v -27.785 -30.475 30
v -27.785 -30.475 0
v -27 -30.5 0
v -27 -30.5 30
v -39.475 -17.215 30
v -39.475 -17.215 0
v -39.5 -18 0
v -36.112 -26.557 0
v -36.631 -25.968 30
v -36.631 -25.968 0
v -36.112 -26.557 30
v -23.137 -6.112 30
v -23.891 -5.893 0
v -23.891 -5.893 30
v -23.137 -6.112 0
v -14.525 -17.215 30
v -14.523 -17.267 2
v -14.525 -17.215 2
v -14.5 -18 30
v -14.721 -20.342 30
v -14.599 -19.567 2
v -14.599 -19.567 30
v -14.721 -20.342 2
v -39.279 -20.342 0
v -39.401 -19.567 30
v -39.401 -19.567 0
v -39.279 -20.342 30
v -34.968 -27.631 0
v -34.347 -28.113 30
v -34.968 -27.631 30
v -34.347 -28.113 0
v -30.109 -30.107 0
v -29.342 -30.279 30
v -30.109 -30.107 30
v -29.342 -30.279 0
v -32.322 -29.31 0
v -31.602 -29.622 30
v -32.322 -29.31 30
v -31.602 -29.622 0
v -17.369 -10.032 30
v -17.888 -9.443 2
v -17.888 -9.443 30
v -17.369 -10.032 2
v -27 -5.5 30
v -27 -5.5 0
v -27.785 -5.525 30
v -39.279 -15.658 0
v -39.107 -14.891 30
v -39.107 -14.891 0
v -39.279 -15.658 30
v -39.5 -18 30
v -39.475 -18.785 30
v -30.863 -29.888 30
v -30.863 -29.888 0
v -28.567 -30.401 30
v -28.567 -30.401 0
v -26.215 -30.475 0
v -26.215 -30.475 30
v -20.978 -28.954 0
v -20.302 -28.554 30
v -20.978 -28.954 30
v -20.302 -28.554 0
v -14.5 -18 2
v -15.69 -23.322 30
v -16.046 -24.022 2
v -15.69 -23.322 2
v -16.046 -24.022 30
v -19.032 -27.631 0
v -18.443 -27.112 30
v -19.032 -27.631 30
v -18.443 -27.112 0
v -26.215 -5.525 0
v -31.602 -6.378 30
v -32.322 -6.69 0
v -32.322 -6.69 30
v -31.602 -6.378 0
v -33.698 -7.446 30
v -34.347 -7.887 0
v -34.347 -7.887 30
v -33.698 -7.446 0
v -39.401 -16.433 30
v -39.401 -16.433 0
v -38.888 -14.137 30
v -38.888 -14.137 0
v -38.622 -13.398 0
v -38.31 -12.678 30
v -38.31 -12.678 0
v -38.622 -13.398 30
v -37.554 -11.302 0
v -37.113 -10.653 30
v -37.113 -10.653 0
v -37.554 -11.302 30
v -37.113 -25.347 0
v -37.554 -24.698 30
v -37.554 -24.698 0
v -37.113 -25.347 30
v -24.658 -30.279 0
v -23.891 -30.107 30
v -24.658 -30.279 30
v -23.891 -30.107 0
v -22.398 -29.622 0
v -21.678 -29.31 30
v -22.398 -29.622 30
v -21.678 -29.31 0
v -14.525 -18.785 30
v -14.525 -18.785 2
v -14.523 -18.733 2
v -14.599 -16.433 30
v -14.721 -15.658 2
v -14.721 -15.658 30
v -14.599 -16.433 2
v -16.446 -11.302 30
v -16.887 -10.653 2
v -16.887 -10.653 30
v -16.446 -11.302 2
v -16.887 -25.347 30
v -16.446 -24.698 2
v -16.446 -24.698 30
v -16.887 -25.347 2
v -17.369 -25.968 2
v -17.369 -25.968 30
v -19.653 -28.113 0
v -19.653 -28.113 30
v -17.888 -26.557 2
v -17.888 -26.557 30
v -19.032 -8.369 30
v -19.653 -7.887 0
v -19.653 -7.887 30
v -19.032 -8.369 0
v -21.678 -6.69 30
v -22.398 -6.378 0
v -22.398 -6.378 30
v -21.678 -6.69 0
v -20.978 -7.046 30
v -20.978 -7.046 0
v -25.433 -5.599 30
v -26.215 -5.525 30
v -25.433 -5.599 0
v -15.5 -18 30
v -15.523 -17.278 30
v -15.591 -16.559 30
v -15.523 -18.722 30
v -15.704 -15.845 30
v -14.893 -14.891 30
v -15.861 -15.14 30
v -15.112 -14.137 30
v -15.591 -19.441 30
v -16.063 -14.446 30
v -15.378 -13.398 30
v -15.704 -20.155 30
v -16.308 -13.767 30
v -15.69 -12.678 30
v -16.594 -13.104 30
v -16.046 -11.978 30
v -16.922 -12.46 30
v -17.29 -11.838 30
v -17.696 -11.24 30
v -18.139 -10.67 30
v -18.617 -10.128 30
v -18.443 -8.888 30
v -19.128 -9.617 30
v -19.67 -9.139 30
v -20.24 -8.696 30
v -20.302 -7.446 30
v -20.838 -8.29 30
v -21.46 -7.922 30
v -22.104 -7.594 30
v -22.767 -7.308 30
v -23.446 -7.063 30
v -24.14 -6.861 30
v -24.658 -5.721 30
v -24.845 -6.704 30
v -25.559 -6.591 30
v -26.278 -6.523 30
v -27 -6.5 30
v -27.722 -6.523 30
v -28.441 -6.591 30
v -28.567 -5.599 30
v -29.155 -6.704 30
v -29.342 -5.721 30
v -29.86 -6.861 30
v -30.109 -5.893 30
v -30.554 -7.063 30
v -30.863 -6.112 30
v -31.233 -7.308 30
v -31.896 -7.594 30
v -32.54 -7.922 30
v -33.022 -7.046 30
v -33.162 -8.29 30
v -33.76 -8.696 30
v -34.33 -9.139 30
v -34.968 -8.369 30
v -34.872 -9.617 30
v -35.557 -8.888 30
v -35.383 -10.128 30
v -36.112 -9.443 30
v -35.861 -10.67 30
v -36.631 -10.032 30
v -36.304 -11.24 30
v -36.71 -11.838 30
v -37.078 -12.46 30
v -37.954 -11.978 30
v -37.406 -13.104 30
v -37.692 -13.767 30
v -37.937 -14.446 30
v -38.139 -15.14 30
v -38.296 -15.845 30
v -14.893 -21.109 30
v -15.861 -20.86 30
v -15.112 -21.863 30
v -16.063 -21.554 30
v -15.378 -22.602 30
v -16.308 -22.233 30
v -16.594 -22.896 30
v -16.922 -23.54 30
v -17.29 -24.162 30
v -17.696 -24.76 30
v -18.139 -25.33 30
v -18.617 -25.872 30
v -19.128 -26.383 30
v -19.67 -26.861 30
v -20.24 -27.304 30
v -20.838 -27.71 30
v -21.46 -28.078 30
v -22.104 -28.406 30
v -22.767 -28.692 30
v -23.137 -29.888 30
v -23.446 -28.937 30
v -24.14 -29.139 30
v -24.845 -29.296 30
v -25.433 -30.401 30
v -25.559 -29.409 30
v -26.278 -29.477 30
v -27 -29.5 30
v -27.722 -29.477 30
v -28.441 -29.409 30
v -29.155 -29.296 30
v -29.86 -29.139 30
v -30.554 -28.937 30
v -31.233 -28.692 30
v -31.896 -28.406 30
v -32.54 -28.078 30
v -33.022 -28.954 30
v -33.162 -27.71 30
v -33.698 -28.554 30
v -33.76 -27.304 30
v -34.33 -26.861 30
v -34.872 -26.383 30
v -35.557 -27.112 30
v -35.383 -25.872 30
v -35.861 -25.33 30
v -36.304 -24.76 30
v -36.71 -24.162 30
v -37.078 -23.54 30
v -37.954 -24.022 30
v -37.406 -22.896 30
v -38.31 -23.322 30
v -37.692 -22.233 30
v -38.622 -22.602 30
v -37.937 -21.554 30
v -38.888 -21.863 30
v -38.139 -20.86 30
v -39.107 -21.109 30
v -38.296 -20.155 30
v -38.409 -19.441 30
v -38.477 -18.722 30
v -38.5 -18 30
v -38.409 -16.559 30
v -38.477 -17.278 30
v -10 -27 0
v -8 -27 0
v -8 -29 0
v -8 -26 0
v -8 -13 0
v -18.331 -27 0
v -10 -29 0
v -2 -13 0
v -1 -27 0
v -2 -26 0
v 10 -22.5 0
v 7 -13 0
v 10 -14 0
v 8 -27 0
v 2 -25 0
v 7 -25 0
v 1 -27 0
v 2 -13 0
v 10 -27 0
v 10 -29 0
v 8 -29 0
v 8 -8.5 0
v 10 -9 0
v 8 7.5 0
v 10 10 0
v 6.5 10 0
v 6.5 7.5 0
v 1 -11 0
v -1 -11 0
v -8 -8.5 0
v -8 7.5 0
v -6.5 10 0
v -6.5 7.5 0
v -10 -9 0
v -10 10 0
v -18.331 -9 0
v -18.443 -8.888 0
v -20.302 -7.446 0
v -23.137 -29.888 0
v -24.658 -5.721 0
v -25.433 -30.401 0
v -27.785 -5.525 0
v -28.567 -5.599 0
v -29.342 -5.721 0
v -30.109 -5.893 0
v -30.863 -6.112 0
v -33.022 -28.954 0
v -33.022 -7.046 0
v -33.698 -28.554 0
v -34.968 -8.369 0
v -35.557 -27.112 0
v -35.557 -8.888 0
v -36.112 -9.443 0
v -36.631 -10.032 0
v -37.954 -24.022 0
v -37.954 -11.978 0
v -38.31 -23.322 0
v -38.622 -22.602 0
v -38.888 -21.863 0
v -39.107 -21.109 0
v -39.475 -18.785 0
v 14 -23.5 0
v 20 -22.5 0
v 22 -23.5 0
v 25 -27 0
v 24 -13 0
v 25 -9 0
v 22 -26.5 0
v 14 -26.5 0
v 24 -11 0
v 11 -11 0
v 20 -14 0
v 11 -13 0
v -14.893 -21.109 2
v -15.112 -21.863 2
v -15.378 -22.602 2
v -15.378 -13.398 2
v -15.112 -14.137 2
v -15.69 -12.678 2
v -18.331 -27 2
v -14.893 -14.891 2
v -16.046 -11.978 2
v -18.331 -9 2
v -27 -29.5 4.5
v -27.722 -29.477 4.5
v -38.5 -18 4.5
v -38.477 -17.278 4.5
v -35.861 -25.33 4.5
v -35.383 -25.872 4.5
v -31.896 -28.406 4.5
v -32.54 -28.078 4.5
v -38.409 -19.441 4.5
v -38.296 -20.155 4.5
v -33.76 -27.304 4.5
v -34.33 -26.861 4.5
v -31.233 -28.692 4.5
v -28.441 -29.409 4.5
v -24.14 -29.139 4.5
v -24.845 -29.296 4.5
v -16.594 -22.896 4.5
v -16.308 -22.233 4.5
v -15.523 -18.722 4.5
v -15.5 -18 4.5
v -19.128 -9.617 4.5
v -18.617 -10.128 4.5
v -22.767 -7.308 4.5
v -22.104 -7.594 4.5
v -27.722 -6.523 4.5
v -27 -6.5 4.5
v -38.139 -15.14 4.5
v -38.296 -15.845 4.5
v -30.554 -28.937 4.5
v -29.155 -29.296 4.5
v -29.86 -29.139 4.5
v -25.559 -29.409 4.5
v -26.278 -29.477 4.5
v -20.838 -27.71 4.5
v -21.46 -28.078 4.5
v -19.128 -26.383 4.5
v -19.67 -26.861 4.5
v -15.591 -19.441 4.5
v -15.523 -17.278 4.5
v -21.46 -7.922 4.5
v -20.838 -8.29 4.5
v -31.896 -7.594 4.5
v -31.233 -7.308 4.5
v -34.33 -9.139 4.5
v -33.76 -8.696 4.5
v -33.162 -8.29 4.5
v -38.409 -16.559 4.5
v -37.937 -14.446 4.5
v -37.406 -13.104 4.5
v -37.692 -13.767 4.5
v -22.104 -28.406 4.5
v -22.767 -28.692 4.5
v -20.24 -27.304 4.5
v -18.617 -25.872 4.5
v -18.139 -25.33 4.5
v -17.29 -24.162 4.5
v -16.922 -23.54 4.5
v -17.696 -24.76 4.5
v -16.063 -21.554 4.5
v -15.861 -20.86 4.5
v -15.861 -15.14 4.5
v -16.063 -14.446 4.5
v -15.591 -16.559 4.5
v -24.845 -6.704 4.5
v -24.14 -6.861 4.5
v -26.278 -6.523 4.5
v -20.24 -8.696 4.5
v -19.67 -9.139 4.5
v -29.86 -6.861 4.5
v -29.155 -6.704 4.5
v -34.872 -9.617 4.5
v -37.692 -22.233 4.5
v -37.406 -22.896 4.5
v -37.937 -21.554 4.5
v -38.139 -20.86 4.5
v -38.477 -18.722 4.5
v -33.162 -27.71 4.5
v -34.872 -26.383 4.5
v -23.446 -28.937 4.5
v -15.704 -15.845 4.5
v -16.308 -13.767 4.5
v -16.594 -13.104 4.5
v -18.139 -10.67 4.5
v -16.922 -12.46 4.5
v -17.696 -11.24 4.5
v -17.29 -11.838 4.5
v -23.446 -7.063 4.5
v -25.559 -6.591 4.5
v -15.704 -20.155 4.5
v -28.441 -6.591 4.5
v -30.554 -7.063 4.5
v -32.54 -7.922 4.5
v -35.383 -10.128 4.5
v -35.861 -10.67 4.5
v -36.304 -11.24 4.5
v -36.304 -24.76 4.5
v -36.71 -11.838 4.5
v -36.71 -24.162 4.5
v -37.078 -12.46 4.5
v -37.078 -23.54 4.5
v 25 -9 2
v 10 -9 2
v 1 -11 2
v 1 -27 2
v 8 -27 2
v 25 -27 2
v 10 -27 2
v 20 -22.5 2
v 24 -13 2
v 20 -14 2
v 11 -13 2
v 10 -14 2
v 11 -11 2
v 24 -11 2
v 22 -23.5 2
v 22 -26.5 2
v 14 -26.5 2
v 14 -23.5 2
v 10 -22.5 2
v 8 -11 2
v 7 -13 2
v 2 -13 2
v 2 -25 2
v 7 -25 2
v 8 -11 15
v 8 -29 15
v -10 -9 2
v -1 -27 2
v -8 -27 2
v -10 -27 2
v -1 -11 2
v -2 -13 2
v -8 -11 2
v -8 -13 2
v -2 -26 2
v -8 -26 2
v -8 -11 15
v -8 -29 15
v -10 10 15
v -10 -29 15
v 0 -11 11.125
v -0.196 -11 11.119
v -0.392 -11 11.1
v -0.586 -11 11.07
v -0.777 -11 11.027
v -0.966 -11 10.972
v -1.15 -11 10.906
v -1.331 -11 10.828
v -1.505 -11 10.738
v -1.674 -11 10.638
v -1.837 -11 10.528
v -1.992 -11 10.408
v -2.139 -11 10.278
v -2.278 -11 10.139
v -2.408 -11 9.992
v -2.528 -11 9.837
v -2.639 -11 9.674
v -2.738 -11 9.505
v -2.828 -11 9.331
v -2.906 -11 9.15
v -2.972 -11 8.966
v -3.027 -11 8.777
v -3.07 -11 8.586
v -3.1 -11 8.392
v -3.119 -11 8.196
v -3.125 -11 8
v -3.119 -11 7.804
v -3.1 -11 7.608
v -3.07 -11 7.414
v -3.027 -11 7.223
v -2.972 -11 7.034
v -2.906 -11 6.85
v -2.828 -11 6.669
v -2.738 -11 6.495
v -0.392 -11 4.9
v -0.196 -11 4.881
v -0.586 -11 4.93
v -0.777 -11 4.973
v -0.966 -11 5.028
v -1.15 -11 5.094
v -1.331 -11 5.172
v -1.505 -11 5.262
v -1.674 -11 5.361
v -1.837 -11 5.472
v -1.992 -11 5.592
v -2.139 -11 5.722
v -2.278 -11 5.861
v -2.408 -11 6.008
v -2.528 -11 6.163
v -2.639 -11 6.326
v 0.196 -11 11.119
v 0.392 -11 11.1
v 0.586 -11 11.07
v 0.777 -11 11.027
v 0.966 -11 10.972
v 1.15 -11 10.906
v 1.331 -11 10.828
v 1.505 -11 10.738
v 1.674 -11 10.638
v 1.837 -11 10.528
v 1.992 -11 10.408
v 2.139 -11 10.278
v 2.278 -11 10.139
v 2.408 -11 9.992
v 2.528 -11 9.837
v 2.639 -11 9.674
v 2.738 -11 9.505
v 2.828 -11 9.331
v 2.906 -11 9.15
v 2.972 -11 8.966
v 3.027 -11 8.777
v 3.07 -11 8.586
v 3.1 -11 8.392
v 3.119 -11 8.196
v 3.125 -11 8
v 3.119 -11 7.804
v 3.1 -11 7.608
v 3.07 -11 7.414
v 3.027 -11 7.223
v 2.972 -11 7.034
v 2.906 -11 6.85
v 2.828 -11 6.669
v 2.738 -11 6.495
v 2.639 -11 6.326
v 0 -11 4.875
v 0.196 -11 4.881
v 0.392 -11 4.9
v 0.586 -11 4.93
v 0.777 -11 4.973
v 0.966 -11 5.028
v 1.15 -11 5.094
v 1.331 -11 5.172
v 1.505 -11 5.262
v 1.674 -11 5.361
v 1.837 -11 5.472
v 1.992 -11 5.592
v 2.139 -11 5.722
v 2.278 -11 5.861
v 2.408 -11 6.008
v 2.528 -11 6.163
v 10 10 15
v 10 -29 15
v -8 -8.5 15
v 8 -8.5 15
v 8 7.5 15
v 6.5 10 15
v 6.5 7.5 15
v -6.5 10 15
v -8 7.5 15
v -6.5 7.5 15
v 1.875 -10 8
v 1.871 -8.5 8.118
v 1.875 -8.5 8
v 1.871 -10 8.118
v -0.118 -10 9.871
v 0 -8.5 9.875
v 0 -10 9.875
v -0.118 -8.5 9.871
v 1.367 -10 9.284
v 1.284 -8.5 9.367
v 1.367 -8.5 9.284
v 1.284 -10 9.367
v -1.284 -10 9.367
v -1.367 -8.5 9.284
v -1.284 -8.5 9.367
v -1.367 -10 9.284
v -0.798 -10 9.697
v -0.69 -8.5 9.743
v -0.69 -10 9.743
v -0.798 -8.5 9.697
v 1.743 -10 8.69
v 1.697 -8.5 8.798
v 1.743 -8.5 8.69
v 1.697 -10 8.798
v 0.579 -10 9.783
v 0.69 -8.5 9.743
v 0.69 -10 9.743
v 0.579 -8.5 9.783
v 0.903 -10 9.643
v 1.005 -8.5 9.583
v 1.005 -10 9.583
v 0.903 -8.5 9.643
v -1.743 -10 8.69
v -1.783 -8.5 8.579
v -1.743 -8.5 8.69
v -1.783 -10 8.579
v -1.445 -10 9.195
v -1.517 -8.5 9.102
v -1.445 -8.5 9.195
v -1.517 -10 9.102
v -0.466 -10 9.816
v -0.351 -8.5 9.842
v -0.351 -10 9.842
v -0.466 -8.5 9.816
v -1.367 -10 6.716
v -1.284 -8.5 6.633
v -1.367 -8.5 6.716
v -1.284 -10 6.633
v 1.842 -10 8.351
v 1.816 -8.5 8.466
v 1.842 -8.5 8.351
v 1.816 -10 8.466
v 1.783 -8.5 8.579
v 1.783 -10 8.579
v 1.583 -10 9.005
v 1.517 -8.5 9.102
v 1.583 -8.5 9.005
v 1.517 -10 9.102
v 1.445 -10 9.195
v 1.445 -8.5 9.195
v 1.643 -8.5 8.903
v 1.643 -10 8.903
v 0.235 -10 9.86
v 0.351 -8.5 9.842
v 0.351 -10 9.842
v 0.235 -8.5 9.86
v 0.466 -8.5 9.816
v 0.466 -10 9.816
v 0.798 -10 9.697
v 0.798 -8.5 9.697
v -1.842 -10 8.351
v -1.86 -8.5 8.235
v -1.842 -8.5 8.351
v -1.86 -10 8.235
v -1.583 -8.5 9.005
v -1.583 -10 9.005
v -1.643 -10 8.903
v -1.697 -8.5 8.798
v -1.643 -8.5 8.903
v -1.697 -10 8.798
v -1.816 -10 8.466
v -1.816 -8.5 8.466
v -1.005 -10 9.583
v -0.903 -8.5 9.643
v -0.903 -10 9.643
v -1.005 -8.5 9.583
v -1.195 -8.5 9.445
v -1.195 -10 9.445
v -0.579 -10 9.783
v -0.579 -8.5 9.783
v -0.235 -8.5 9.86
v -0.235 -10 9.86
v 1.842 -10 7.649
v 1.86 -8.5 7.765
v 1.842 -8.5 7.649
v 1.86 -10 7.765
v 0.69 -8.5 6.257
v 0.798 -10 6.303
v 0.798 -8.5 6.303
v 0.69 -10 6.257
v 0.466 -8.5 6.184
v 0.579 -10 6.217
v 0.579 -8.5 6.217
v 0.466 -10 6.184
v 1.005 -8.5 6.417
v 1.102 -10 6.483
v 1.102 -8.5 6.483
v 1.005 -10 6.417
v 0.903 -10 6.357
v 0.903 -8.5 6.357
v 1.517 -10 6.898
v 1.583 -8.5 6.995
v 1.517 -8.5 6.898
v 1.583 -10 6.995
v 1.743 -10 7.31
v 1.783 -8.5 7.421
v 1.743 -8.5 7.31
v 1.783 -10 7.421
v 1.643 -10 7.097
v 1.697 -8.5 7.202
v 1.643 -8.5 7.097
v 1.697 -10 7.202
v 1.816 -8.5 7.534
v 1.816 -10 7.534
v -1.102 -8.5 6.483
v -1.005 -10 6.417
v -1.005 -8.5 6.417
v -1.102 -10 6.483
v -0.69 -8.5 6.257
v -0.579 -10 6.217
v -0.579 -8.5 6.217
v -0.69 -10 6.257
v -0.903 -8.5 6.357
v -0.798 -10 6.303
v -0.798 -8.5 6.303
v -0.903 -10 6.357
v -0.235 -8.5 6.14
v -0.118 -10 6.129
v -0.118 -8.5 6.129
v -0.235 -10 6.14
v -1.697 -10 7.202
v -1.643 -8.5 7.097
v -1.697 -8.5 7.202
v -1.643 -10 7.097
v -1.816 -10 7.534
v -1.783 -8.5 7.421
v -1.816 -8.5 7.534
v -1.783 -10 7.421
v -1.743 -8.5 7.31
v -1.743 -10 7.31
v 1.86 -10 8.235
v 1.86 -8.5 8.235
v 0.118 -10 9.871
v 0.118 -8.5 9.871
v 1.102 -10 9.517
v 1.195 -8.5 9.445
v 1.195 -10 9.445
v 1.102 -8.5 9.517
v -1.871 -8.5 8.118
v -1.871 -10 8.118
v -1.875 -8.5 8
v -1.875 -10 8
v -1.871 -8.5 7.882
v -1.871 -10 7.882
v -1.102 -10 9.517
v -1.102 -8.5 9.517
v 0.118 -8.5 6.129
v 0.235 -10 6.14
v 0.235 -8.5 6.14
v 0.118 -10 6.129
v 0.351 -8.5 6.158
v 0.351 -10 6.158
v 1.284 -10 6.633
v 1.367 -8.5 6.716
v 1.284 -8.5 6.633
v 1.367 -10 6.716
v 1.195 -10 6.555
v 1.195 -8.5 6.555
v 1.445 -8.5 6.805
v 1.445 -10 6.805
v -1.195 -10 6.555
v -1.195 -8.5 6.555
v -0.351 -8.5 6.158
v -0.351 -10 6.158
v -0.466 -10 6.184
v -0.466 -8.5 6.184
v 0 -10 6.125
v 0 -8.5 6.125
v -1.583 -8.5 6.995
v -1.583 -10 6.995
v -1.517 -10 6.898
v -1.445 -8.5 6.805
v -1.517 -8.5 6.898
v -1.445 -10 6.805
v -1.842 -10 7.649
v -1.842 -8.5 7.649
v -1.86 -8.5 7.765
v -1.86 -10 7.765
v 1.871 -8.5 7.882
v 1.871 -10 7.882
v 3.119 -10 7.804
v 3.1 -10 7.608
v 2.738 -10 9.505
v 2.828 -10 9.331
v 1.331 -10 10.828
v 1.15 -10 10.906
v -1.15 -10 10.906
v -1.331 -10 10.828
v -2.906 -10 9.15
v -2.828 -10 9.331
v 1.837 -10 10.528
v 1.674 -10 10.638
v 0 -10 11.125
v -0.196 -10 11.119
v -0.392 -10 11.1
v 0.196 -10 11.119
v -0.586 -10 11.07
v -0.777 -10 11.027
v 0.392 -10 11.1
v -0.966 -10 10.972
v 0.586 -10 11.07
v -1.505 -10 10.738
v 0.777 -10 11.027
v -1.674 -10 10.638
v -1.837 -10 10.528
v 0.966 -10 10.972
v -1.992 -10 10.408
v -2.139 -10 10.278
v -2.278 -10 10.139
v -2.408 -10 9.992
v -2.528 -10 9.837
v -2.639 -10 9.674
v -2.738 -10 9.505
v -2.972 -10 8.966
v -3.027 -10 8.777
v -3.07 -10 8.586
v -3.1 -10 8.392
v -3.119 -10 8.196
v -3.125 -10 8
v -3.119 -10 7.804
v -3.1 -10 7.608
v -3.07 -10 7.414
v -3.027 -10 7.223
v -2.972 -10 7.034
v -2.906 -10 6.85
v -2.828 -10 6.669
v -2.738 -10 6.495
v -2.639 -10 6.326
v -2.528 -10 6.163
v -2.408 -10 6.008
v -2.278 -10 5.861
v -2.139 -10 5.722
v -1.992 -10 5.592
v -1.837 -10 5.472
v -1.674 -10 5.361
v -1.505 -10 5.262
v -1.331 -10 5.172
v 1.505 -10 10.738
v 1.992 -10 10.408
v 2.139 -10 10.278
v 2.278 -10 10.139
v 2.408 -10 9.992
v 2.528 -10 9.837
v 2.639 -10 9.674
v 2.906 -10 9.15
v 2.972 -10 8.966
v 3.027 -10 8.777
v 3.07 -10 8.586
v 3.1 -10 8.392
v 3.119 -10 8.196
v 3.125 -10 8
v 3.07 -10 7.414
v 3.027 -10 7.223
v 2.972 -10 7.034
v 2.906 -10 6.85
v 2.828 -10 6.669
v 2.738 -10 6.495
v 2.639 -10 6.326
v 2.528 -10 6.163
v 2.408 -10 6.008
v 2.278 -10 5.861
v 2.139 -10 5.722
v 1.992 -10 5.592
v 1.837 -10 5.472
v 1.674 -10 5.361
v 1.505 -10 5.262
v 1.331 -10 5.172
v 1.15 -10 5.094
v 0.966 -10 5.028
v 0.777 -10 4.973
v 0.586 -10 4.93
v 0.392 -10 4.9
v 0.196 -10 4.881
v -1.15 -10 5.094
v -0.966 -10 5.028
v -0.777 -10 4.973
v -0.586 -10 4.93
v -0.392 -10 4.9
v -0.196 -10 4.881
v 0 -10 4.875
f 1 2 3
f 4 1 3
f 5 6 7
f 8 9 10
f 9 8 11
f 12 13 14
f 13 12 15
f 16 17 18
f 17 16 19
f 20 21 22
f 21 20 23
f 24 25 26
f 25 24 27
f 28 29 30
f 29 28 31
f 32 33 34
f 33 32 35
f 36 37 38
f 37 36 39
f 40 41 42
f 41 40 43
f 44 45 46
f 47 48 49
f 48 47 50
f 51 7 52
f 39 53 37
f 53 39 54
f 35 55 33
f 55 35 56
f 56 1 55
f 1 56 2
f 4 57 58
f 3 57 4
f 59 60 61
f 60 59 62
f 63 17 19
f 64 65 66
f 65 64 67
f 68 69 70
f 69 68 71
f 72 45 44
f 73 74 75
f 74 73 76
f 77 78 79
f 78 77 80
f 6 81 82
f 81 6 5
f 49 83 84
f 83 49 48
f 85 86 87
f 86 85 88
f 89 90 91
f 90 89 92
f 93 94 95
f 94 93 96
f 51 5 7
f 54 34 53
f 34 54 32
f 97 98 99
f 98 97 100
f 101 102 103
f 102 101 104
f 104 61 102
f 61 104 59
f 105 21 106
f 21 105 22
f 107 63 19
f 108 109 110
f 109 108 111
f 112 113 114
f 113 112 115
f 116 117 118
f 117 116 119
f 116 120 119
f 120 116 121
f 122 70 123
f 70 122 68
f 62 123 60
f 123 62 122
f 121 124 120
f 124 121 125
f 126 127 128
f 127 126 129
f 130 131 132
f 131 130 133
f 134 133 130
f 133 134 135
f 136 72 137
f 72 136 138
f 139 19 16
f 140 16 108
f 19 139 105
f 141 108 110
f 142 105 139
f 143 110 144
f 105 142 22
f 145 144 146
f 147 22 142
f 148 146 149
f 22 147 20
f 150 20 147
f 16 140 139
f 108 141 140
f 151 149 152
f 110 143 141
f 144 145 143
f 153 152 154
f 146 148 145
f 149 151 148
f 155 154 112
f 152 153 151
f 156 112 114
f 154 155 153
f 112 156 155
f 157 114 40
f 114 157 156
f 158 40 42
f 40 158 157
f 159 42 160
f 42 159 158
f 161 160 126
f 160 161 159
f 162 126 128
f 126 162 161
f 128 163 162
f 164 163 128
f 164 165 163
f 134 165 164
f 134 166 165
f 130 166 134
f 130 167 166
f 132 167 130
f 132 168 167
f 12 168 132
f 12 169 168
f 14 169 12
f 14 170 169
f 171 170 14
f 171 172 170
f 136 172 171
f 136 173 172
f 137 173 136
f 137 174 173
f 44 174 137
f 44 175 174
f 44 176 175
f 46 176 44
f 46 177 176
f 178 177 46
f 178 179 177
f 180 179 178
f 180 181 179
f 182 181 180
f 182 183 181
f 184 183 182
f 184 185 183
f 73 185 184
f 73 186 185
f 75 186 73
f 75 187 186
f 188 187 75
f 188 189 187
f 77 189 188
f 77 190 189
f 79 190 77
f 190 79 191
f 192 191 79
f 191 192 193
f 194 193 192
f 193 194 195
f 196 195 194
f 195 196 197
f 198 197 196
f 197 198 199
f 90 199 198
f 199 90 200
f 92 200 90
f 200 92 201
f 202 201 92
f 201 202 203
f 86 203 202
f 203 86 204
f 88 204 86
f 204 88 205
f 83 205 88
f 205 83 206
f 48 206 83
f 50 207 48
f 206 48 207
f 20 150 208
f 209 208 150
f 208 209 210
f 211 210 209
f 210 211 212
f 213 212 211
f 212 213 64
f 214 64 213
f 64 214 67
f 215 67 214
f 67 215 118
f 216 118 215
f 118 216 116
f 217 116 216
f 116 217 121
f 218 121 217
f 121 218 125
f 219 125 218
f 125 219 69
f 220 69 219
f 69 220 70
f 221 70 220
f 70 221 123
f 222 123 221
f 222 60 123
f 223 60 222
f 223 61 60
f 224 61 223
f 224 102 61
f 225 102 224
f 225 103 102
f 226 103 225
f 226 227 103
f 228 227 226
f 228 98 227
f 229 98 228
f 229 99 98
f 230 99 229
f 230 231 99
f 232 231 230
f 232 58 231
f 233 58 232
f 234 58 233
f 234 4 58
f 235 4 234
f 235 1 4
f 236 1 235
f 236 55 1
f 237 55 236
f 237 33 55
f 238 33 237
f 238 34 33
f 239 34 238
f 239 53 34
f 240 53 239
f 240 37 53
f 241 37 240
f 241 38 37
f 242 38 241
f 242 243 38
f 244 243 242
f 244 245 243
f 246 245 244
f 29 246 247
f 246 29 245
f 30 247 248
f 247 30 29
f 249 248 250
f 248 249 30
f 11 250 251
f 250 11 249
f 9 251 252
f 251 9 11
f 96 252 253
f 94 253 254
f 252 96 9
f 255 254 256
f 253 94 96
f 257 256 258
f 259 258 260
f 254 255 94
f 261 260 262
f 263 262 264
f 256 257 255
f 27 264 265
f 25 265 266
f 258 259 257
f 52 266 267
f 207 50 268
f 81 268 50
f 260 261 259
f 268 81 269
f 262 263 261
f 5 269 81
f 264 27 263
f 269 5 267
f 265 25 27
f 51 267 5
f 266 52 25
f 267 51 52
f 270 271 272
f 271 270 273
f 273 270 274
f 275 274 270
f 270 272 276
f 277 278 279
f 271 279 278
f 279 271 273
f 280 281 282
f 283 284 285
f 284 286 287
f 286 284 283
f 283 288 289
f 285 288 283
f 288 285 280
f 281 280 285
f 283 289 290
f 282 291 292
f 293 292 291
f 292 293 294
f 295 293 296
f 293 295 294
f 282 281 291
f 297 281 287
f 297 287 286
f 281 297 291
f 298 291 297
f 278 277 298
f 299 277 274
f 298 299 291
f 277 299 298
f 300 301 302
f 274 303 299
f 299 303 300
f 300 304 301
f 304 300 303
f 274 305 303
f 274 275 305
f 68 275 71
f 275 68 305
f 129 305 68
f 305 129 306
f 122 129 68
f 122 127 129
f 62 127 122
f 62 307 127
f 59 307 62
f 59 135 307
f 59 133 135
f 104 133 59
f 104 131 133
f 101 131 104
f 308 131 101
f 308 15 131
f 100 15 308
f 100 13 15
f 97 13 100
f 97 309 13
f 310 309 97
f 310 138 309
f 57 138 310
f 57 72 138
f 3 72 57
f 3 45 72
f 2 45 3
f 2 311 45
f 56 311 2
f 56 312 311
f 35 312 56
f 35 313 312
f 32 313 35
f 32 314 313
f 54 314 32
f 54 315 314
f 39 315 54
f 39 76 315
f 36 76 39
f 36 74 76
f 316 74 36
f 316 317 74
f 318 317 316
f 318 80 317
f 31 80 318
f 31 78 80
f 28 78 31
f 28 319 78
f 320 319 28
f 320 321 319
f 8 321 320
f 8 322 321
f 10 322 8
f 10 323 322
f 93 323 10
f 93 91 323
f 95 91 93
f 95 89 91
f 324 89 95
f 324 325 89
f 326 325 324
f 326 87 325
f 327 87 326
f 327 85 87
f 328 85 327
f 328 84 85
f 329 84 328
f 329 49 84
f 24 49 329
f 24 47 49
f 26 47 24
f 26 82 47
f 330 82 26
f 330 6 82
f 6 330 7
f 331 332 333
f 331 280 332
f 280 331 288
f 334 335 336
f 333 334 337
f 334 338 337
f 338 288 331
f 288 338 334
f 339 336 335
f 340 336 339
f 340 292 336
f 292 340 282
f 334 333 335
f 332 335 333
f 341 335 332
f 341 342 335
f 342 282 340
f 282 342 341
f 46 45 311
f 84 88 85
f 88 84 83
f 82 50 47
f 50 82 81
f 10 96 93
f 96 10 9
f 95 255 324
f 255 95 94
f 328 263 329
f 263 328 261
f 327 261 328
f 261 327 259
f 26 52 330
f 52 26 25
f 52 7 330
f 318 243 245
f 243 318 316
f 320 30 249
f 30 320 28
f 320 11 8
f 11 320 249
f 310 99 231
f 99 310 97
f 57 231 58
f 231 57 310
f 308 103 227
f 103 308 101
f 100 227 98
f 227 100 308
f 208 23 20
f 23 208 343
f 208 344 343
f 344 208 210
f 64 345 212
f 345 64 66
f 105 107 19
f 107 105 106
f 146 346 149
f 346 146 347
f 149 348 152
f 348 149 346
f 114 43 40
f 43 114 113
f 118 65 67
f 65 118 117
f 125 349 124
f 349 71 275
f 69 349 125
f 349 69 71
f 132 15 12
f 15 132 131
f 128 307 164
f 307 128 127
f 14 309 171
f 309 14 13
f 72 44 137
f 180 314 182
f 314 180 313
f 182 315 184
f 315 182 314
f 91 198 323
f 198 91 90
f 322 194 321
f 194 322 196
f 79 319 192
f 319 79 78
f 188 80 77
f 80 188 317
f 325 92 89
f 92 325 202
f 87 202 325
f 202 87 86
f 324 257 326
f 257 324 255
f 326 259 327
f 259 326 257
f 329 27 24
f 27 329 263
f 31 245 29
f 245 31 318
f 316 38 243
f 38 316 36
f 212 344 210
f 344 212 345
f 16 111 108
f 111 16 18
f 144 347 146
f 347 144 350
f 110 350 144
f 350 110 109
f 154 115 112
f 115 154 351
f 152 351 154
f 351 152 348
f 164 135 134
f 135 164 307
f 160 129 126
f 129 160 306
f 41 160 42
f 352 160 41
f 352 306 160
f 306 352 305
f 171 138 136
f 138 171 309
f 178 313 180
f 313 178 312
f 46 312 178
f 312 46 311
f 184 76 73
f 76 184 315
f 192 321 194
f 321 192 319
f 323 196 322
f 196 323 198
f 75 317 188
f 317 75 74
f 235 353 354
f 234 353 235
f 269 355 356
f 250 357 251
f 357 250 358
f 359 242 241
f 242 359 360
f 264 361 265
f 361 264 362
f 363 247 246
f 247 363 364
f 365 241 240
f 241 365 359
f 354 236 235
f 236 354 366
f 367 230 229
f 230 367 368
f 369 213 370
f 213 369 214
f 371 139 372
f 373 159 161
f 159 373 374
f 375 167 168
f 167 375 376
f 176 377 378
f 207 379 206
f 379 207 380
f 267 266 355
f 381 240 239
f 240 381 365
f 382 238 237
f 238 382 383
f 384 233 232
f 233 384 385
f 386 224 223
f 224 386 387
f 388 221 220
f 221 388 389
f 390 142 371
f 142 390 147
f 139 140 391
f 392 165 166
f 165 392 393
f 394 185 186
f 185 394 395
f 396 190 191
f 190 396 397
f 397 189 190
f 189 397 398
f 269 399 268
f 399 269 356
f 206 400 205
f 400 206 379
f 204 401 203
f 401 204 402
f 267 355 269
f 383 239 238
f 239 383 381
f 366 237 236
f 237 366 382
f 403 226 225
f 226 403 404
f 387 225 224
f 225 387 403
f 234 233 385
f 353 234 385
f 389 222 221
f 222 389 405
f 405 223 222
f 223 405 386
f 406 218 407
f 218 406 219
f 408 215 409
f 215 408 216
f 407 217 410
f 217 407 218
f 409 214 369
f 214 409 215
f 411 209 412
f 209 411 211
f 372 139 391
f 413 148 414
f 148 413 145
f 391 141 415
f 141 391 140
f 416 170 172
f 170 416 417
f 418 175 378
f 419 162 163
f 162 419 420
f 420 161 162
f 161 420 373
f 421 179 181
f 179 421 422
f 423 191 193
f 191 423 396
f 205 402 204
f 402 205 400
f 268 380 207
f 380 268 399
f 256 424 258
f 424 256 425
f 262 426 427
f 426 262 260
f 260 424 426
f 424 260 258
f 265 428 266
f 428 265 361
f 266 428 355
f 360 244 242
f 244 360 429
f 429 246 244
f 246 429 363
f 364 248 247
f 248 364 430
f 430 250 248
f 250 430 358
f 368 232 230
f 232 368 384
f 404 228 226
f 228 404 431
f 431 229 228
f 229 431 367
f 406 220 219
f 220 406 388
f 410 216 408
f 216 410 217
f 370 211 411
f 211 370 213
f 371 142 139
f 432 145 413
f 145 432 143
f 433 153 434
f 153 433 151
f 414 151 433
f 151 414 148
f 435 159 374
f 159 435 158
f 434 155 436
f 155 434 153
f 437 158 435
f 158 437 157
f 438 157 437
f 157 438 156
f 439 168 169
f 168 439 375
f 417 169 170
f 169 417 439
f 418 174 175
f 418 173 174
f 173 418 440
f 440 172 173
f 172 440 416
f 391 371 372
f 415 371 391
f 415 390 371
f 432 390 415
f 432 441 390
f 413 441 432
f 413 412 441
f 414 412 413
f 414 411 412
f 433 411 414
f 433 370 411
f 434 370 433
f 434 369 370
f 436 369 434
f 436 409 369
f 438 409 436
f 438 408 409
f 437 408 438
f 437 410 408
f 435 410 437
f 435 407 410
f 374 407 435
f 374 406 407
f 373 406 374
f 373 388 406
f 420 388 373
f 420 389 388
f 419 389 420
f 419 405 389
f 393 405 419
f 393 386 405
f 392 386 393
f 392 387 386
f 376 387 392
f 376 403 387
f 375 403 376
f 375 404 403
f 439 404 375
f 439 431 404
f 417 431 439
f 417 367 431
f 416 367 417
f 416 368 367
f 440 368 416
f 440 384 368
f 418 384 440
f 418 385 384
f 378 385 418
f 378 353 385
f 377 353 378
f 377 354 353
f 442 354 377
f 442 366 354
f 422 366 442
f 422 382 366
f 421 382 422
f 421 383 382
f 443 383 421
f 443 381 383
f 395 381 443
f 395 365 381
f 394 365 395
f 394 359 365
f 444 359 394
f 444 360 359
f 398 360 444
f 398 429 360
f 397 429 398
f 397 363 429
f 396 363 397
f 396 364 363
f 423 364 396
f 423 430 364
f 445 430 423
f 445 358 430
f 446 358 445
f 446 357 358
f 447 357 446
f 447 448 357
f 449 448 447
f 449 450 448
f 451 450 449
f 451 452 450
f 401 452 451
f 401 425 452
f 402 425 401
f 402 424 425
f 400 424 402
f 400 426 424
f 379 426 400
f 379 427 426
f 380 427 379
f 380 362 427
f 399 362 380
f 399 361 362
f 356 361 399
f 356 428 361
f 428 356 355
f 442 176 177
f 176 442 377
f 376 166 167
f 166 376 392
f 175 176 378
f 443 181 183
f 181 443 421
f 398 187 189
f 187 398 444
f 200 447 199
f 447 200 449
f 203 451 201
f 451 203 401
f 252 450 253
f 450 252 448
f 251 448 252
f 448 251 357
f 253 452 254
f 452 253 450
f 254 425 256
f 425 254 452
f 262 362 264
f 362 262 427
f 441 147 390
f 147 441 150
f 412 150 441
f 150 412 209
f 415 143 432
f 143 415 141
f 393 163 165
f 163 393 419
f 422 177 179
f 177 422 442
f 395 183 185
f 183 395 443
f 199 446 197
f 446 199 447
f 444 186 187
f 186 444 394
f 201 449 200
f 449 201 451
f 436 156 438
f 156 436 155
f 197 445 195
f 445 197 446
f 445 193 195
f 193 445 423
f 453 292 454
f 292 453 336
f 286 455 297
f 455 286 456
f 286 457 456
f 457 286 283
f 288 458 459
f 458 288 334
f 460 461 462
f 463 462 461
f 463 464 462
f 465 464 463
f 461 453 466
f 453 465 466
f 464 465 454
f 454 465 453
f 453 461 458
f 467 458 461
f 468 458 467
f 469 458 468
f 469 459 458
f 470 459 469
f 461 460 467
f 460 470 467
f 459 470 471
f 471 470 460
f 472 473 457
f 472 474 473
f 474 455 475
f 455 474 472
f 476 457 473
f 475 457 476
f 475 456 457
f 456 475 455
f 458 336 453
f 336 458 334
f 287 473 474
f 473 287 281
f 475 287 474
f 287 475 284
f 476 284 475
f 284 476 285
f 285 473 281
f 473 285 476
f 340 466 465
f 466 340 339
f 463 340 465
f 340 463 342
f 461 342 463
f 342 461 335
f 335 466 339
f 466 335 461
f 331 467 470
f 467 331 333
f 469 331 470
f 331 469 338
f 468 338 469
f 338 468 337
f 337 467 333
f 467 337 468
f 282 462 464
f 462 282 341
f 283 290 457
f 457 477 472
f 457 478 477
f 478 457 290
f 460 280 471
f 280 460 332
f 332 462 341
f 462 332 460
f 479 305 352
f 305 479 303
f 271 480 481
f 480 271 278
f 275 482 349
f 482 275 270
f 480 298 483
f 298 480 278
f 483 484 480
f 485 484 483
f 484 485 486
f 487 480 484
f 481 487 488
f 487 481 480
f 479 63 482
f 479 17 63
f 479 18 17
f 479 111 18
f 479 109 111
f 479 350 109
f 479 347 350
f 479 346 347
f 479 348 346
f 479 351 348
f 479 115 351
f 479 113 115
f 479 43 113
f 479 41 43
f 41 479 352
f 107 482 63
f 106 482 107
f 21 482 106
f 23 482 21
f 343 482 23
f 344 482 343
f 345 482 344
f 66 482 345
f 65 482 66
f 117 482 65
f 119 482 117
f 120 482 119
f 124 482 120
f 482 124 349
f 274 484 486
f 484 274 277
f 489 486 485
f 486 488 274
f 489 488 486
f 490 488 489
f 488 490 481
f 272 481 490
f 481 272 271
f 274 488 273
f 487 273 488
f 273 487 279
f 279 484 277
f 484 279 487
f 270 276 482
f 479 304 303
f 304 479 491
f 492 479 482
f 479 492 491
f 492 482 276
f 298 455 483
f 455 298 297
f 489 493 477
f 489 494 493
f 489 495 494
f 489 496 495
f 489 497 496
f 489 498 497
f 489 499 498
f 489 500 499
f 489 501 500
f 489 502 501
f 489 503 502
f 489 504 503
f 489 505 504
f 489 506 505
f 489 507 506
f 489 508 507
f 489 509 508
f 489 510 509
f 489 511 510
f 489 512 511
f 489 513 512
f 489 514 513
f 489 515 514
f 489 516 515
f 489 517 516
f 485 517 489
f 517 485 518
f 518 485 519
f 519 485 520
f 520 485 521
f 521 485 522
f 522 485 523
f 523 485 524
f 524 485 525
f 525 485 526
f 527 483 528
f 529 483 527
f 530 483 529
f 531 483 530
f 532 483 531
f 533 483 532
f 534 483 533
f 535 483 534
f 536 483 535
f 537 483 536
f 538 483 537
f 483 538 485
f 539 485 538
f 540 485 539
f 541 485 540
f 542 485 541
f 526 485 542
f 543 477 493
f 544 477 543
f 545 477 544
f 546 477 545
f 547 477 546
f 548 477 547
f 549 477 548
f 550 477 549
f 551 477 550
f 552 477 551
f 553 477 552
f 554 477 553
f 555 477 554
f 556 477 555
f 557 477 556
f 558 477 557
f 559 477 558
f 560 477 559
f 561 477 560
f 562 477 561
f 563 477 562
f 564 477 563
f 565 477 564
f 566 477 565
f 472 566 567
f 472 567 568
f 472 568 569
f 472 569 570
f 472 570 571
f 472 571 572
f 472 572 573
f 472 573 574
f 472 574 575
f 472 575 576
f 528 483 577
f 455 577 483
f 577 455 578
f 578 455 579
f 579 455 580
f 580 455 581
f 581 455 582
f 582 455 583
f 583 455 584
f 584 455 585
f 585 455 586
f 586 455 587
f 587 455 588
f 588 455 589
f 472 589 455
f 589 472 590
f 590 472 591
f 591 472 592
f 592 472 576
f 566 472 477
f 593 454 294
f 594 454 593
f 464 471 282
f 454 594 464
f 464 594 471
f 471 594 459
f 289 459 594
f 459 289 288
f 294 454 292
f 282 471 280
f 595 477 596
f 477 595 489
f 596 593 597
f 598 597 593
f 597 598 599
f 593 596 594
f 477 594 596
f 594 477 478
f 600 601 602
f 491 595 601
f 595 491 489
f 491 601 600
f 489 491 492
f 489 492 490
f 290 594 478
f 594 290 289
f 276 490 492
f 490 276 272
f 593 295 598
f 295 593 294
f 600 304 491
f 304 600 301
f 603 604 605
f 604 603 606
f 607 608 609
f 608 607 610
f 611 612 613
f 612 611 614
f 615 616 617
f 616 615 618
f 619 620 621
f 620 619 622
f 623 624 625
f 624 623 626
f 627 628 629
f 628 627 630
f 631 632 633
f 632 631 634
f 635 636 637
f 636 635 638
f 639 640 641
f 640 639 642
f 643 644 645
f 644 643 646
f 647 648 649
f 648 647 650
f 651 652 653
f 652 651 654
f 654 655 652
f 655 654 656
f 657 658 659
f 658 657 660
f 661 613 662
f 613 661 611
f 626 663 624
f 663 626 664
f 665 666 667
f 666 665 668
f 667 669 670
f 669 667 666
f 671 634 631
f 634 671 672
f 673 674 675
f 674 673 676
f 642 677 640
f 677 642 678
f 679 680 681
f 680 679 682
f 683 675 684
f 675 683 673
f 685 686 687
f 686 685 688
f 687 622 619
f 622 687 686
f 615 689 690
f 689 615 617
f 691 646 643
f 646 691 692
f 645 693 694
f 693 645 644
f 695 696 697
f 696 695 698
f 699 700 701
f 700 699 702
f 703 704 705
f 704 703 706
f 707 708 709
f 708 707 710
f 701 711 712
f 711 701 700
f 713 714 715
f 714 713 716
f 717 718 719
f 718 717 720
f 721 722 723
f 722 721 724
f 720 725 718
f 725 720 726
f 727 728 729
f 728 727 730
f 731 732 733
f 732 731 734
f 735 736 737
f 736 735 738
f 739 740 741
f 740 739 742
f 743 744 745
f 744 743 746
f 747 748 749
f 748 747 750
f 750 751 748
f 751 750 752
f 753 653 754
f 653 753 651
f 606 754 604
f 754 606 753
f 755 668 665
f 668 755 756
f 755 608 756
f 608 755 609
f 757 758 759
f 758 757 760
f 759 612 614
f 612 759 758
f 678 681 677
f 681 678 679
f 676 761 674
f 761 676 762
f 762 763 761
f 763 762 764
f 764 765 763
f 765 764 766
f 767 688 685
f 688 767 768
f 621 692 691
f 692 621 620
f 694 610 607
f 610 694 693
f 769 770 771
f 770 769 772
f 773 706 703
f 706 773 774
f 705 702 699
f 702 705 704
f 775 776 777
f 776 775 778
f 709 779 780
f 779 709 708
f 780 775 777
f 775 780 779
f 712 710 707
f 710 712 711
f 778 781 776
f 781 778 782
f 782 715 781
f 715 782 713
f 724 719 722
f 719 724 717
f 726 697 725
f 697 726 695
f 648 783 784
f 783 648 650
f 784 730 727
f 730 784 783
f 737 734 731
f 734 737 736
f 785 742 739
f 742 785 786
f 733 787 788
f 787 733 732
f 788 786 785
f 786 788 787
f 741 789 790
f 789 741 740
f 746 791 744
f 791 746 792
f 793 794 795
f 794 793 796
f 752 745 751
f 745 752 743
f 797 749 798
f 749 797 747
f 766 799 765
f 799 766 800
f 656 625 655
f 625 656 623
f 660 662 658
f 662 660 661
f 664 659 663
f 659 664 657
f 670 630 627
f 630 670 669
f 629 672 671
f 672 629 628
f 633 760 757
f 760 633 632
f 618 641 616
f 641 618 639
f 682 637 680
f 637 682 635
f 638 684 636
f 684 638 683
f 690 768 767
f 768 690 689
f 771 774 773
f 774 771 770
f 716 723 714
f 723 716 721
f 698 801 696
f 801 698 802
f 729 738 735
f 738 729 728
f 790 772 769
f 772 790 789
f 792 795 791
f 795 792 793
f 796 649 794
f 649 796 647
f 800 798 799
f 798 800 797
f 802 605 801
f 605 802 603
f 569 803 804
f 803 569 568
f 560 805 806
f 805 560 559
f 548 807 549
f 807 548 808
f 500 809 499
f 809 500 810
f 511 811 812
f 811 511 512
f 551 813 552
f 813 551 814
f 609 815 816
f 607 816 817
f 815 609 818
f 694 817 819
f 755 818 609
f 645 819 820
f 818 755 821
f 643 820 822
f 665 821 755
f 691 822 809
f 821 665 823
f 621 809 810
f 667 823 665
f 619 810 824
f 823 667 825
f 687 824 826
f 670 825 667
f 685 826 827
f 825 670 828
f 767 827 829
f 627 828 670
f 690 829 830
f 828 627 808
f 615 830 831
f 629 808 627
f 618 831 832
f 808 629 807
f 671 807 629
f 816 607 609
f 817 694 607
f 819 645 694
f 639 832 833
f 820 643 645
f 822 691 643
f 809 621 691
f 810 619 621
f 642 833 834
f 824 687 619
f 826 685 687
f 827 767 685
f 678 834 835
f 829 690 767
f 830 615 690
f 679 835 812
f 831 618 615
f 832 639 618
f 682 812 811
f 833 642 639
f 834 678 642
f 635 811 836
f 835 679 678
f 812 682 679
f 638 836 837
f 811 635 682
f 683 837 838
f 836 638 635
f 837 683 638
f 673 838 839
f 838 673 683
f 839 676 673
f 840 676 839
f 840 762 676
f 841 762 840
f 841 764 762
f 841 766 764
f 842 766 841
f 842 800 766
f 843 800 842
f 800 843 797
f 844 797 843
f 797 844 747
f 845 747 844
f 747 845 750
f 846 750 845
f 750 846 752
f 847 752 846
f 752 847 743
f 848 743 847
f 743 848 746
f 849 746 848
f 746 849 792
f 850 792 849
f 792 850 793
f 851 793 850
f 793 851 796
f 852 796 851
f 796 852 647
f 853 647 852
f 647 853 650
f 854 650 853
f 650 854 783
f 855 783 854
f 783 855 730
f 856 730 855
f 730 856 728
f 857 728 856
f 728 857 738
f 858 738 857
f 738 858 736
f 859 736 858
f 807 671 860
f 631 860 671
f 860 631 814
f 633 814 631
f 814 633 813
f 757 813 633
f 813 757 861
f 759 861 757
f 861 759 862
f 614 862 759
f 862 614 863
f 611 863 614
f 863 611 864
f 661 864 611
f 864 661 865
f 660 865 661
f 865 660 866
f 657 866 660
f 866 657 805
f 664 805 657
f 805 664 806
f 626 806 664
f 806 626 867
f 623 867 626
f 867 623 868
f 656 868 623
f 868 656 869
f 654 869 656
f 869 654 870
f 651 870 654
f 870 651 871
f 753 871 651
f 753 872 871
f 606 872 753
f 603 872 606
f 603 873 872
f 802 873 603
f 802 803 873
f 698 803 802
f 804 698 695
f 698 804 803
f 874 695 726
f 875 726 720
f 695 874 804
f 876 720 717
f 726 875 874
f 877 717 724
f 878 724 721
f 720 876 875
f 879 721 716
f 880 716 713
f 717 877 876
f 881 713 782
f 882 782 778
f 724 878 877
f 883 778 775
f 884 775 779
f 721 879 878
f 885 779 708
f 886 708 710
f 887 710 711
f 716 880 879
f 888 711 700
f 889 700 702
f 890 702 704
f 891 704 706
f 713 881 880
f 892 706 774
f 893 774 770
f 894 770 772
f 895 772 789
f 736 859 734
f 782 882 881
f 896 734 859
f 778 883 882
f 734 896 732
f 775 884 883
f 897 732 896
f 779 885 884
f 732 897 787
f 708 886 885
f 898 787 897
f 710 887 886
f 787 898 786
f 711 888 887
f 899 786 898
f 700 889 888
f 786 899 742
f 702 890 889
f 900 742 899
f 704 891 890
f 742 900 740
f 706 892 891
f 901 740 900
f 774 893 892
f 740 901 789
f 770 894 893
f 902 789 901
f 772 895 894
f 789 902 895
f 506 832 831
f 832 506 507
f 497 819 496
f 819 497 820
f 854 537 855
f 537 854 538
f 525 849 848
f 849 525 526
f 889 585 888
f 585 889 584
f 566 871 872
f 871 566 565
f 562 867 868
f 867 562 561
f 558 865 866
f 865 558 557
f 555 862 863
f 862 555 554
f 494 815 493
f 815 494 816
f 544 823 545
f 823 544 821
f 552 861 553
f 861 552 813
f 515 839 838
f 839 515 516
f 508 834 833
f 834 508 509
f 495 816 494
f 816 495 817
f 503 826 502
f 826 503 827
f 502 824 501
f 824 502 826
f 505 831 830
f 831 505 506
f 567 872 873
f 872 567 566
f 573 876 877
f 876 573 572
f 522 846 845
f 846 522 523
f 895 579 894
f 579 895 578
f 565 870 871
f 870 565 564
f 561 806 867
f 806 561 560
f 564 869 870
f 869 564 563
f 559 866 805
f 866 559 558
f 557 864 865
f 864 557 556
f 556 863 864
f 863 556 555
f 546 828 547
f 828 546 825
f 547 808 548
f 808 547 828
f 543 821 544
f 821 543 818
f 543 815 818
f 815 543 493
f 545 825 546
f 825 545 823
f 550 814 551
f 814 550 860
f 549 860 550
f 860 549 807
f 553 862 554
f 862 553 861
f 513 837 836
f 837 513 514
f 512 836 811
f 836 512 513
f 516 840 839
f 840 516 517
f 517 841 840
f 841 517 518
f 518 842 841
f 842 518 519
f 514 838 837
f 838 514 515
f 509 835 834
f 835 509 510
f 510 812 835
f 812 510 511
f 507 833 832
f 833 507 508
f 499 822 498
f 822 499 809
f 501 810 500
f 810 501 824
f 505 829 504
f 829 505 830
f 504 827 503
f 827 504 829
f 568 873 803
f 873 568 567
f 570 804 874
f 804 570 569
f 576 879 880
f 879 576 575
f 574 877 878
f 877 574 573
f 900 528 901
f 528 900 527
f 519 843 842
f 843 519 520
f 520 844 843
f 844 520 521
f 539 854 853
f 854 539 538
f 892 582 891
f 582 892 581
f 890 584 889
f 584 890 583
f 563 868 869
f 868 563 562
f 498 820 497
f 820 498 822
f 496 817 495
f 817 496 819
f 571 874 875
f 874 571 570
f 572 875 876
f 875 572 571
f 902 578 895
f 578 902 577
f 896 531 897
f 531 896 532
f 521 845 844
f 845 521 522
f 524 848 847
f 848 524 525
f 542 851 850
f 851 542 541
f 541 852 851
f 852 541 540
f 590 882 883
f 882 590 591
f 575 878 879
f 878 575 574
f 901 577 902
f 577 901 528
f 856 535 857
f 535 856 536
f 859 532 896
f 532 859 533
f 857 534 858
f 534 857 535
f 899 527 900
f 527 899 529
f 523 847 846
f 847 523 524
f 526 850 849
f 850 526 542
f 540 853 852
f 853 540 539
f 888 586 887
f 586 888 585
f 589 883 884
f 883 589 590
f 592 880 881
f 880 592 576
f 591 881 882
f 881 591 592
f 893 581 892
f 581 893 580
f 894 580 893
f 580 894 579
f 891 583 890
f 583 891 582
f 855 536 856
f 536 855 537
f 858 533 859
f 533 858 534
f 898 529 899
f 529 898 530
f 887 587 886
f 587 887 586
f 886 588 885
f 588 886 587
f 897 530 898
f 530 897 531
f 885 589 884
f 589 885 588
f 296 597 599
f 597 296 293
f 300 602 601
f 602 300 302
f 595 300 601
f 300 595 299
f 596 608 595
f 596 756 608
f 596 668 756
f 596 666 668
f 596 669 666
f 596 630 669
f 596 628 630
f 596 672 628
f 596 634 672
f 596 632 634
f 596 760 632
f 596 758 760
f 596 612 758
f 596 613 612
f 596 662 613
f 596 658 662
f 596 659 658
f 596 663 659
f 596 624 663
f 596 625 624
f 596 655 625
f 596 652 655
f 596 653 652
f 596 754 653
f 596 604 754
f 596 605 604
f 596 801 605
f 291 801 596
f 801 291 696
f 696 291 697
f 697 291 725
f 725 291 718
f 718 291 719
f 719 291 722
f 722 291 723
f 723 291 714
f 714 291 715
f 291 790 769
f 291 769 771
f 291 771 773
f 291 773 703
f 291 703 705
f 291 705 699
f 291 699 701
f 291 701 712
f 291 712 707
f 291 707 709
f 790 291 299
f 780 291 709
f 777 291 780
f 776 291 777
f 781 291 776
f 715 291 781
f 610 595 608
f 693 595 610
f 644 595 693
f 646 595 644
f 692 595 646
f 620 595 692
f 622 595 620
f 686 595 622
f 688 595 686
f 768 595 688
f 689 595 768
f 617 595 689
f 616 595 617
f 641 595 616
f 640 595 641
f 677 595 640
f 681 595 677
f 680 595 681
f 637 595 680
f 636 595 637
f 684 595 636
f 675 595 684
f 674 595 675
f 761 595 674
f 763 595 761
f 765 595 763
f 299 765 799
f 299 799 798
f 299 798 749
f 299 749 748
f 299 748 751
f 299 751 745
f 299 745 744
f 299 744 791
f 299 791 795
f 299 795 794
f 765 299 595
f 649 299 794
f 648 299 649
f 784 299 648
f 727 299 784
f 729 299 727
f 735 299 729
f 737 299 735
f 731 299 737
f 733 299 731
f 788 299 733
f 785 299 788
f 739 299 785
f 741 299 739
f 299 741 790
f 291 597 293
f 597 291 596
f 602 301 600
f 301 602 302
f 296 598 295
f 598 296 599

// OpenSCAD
// Kossel 1515 extrusion cable organizer/clip
// License: CC1.0 Universal

$fn = 100;
plate_length = 15;
plate_height = 20;

plate_width  = 20;
plate_thickness = 2;

num_drills = 1;
inset_depth = 1.5;
drill_depth = 4;

wall_length = 19;

// Polyholes from: http://hydraraptor.blogspot.com/2011/02/polyholes.html
module polyhole(h, d) {
    n = max(round(2 * d),3);
    rotate([0,0,180])
        cylinder(h = h, r = (d / 2) / cos (180 / n), $fn = n);
}

module openbeam() {
    linear_extrude(rotate = 90, height = 100, center = true, convexity = 10) import (file = "openbeam.dxf");
}


module inset_drills(distance, drill_size, inset_depth) {
    translate([0, distance*20, -drill_depth]) cylinder(r=drill_size/2, h=drill_depth);
    translate([0, distance*20, -1]) cylinder(r=drill_size/1.2, h=inset_depth);
}

module holders() {
    union() {
        difference() {
        // Glue stick holder
            rotate([90, 0, 0]) translate([9, 37, -30]) {
                cylinder(d=25, h=30);
        
            }
            rotate([90, 0, 0]) translate([9, 37, -30]) cylinder(d=23, h=25.5);
        }
        difference() {
            
            translate([0, 0, -15]) cube([18, plate_thickness, 24]);
           
            // USB stick/microSD <-> USB card reader
            #translate([4, -plate_thickness, 3]) cube([12, 5, 5]);
            
            // Holder for a spatula/flat print removal tool (Toybuilder labs spatula here)
            translate([2, -plate_thickness, -14]) cube([2, 6, 13]);
        
            // Tweezer hanger (one side hangs off of the edge)
            translate([14.5, -plate_thickness, -12]) cube([3, 6, 8]);            
 
            // Messograf calipers/pen
            #translate([5, -plate_thickness, -10]) cube([8.5, 5, 12]);            
            
        }
        
        difference() {
        
            translate([0, 0, 11]) cube([18, plate_thickness, 24]);
            
            // Intended to hold a flush cutter's handle
            translate([4, -plate_thickness, 12]) cube([13, 5, 6]);
            
            // Outer areas for securing larger pliers
            // Remove the glue stick holder if this is desired -- unrefined
            // but tested against Hakko red pliers
            //translate([9, -plate_thickness, 25]) cube([6, 6, 7]);
            //translate([0, -plate_thickness, 25]) cube([6, 6, 7]); 
        }
    }
}

module plate() {
    difference() {
      union() {
        // Interface plate (to extrusion)
        cube([plate_thickness, plate_length, plate_height]);
        
        // Bottom plate (where driver shafts exit))
        cube([plate_width, plate_length, plate_thickness]);
          
        // Top plate (driver landing area)
        translate([19-wall_length, 0, plate_height-2]) cube([plate_width, plate_length, plate_thickness]);  
         
        // Top 'ceiling' wall  
        translate([-(wall_length), 0, 10]) cube([wall_length, plate_length, plate_height - 10]); 
          
        // Bottom 'floor' wall
        translate([-(wall_length), 0, 0]) cube([wall_length, plate_length, plate_height - 10]);
         
        holders(); 
      }
    
      // Mounting plate drills
      translate([2,  -32, 10]) rotate([0,90,0]) inset_drills(2, 3.75, 2);
      
      // Beam connector
      translate([-(wall_length-2.5), 0, 2]) cube([(wall_length-3), plate_length, 16]);
      
      // Cutout at snap area
      translate([-wall_length, 0, 3.5]) cube([2.5, plate_length, 13]);
    }
}

rotate([0, 90, 180]) {
    rotate([0, 0, 90]) translate([9, 0, -10]) plate();
    //rotate([0, 90, 180]) translate([0, 0, 0]) openbeam();
}
